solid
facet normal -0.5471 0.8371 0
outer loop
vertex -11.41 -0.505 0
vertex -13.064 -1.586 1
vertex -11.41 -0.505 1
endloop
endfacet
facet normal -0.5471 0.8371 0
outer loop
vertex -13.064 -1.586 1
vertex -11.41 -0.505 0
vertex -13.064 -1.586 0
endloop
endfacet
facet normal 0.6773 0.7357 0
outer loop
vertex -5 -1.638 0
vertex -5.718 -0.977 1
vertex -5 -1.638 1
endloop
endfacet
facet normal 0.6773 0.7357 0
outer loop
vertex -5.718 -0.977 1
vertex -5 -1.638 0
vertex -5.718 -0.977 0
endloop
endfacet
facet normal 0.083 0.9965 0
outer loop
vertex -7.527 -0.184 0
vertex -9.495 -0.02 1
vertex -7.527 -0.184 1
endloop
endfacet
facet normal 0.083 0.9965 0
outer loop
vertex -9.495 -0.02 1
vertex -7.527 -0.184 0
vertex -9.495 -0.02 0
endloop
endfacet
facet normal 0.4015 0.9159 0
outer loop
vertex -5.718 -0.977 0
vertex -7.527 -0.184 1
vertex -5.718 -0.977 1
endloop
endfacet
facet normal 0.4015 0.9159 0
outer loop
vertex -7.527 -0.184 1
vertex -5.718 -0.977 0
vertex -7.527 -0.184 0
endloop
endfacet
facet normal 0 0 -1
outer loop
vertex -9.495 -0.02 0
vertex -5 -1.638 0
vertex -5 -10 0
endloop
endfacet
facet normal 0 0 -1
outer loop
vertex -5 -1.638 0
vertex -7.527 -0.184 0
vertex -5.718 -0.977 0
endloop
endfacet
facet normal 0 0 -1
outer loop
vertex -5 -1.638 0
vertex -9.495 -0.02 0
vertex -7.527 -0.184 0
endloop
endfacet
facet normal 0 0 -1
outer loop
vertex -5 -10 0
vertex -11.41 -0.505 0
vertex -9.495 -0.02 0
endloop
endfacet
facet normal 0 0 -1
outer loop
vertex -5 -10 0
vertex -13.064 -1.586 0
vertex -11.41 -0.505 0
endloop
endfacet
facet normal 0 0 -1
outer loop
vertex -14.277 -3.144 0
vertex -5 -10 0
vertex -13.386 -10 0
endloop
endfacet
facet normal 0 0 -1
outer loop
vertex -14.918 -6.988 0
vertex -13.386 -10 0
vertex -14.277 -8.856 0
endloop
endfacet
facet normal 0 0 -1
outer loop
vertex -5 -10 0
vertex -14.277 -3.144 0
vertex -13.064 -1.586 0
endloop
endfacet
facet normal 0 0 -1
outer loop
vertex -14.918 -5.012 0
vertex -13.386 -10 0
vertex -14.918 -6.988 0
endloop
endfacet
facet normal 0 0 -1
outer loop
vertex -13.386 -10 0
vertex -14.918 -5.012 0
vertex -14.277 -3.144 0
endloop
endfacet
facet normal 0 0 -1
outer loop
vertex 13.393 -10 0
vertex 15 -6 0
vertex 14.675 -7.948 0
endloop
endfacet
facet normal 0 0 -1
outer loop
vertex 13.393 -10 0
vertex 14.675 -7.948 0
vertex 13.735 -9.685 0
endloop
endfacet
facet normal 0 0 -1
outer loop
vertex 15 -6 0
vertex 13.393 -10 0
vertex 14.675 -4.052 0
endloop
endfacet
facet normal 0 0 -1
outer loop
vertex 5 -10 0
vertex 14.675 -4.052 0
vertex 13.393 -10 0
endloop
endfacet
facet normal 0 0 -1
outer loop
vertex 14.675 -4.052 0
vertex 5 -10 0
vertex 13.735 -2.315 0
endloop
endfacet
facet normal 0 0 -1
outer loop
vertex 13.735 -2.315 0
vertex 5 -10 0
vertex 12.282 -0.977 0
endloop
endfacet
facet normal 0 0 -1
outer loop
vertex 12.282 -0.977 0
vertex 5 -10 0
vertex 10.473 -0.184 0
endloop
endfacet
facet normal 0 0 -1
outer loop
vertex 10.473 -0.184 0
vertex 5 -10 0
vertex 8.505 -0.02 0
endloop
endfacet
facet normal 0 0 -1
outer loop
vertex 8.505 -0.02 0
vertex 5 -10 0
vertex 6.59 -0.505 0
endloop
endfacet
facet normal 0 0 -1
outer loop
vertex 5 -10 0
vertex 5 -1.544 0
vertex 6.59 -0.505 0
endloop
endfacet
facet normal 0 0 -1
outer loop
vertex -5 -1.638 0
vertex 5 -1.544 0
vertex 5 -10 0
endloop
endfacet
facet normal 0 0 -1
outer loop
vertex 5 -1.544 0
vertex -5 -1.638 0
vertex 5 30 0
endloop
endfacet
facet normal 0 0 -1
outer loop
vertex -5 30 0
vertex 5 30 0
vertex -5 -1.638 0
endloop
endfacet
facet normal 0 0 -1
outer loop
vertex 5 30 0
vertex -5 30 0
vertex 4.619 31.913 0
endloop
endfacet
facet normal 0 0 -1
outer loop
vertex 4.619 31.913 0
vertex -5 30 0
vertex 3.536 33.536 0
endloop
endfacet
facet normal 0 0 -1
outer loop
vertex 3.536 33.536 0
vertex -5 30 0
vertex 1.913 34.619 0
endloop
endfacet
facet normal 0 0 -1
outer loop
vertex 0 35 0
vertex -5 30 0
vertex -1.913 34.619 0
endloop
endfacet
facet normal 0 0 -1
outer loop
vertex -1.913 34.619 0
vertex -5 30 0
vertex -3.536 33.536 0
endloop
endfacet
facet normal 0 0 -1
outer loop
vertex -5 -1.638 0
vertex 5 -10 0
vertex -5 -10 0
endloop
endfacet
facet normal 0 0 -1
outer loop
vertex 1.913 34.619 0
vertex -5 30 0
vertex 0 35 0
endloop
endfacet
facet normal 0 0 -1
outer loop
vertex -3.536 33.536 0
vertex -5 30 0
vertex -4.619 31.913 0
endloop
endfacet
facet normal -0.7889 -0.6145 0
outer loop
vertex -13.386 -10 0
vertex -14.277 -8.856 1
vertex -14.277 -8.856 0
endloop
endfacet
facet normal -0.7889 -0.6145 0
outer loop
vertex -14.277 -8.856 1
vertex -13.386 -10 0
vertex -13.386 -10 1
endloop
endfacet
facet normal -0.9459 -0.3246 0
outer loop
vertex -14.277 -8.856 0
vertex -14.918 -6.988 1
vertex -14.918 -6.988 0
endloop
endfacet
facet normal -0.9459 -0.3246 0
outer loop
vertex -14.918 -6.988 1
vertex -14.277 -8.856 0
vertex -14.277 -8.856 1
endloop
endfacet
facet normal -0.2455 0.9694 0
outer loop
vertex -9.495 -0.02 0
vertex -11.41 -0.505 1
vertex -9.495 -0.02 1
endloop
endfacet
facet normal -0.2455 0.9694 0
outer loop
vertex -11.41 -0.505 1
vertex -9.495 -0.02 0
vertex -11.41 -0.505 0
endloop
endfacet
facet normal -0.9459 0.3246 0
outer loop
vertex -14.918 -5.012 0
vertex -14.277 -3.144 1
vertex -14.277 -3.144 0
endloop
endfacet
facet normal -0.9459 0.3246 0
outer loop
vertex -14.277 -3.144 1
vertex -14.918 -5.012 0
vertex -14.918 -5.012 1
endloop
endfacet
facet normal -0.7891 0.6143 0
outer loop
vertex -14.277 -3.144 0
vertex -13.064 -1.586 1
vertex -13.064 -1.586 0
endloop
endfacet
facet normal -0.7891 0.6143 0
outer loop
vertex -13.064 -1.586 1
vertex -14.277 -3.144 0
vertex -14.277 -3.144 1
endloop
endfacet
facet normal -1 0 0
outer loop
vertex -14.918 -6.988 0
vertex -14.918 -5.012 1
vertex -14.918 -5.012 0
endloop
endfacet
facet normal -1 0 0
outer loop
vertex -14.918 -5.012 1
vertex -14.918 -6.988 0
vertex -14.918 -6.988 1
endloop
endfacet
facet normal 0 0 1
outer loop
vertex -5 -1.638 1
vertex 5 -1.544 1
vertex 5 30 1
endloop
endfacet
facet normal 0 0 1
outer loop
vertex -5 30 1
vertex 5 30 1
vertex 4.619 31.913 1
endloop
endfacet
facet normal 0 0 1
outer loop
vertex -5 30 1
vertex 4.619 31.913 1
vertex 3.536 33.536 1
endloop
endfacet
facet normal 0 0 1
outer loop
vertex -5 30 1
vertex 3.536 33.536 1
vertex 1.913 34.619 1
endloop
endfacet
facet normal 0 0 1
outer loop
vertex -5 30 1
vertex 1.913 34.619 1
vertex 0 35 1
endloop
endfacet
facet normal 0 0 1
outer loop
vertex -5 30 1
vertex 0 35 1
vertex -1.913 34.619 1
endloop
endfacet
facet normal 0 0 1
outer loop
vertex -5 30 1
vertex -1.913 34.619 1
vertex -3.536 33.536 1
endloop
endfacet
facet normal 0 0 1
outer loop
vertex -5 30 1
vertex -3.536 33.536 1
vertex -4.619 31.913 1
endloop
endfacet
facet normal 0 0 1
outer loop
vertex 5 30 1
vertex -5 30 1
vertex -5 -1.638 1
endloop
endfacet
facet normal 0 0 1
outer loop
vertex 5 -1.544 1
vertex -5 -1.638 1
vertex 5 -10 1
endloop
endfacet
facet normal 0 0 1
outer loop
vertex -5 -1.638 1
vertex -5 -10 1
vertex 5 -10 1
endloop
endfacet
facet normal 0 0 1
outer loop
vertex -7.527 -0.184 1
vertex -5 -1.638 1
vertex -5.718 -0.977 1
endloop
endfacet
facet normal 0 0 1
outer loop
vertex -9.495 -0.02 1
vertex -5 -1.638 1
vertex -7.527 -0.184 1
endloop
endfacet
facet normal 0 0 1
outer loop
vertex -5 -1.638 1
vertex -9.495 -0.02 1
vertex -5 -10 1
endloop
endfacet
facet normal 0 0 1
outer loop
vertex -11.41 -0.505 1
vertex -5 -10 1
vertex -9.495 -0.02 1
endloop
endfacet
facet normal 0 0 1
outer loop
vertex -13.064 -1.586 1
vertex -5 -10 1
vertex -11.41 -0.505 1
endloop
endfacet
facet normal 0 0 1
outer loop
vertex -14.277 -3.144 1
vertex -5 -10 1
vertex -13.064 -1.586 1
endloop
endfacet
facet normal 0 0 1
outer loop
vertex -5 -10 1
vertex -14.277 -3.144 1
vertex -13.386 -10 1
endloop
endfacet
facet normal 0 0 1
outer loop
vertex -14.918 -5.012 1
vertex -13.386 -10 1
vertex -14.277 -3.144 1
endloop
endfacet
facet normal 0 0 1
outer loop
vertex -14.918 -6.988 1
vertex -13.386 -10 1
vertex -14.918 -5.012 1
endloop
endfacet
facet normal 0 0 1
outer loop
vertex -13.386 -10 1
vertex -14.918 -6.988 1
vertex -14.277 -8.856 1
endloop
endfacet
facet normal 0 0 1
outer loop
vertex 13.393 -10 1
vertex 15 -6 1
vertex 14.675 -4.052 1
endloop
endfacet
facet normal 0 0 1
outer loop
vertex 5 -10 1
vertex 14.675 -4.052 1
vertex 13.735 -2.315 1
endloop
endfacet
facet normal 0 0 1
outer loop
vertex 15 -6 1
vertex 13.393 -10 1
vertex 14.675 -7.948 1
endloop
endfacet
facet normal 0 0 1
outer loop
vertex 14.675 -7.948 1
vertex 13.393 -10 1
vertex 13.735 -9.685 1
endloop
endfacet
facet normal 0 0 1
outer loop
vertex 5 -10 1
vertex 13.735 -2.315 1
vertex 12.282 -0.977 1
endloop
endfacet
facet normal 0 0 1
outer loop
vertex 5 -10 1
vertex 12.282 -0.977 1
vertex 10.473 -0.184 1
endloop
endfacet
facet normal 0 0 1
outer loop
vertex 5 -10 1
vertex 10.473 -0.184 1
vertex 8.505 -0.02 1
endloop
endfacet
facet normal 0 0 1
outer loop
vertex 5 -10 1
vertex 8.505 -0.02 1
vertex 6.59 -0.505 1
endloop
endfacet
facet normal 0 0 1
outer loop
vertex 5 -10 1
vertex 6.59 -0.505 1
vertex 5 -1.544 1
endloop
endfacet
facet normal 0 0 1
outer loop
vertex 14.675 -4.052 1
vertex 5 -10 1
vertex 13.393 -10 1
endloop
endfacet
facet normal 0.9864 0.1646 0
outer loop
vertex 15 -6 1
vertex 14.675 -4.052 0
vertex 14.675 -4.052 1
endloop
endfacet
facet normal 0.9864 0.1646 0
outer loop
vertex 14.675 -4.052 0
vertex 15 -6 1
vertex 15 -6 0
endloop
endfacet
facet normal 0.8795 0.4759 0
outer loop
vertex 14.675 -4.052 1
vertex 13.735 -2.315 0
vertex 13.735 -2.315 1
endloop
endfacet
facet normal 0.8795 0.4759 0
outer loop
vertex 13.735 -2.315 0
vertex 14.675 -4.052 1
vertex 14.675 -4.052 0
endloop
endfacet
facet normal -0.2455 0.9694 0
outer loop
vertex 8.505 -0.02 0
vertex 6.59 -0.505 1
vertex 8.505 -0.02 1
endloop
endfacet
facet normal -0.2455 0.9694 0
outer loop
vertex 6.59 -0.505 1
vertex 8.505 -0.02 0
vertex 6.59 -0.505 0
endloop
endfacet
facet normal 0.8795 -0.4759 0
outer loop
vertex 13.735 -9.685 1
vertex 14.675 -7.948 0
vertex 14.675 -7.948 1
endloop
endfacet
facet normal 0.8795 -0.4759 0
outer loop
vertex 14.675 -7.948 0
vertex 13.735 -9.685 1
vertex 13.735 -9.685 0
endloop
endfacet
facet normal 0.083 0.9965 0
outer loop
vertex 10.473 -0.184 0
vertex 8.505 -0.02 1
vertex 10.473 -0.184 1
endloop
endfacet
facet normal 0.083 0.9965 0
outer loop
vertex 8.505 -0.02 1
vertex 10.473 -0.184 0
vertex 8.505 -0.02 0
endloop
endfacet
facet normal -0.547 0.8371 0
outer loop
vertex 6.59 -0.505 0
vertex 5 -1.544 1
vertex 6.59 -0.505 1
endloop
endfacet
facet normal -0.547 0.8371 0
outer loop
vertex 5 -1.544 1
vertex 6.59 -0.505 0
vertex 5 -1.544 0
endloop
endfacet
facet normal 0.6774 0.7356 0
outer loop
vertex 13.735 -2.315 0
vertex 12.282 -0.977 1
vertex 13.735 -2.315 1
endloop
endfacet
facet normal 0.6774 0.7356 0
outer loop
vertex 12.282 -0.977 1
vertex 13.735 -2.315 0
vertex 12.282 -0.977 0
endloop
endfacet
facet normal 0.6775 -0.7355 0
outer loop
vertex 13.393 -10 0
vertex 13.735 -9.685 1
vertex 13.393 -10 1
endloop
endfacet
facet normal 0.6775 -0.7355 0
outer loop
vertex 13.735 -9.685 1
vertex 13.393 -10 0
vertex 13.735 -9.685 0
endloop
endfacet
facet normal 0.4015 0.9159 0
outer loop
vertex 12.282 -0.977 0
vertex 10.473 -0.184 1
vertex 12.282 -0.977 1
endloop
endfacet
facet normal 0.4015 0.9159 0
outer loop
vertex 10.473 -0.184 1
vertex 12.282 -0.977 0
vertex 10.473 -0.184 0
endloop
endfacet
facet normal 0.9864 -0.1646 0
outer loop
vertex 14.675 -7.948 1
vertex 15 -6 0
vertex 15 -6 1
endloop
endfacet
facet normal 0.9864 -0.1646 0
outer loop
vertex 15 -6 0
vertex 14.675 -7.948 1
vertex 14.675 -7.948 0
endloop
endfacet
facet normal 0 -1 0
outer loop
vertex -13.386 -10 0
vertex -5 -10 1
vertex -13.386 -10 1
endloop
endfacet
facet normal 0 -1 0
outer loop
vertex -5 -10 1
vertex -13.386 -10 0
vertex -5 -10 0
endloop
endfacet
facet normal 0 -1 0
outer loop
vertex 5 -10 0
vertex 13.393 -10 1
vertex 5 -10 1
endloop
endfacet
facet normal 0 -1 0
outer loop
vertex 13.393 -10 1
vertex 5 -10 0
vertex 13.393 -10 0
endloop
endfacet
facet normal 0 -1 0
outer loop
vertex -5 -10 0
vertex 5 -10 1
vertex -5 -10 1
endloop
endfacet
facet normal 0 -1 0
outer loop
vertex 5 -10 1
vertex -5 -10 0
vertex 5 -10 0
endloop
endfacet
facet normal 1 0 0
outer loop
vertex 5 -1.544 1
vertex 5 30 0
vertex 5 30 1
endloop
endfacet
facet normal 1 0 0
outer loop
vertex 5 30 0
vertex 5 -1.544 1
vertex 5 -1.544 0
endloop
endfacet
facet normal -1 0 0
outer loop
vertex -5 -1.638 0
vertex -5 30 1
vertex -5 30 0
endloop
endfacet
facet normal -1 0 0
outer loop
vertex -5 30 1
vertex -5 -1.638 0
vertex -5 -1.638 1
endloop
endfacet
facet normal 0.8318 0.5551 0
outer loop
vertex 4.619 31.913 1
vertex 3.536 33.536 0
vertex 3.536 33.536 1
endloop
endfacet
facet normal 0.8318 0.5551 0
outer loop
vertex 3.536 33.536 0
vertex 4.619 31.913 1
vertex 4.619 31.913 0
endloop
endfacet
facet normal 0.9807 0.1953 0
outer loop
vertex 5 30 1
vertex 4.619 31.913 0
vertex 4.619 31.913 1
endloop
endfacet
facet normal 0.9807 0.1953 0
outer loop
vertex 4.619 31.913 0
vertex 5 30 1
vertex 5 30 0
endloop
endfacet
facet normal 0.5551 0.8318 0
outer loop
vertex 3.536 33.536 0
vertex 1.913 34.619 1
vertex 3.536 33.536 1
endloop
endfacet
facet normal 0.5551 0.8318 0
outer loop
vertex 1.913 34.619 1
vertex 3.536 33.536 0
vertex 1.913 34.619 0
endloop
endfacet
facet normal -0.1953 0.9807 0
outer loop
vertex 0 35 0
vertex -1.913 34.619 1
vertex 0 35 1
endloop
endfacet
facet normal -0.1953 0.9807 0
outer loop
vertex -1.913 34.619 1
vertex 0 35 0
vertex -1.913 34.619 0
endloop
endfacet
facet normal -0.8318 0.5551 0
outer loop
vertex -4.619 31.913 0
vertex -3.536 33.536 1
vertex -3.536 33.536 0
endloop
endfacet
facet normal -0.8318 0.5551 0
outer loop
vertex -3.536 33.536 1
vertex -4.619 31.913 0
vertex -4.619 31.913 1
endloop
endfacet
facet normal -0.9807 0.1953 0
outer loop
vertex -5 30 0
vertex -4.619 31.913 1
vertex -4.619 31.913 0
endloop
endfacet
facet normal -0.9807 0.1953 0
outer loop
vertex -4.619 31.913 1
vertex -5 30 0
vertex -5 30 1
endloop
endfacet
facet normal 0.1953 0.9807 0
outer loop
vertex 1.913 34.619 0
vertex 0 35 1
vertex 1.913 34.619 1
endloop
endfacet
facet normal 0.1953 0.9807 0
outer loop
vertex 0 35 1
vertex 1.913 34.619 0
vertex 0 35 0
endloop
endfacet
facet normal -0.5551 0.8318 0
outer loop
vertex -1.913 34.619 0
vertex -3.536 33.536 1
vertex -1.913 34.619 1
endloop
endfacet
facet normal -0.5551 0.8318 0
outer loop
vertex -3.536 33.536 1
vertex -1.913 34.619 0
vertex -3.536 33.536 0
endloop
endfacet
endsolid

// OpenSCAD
// Shaft
translate([-5, -10, 0])
  cube([10, 40, 1]);

// Tip
translate([0, 30, 0])
  cylinder(h=1,r=5);

difference() {
union() {
  // Ball left
  translate([-9, -6, 0])
    cylinder(h=1, r=6);

  // Ball right
  translate([9, -6, 0])
    cylinder(h=1, r=6);
}

// Ball cut off
translate([-20, -20, -1])
  cube([40, 10, 3]);
}
